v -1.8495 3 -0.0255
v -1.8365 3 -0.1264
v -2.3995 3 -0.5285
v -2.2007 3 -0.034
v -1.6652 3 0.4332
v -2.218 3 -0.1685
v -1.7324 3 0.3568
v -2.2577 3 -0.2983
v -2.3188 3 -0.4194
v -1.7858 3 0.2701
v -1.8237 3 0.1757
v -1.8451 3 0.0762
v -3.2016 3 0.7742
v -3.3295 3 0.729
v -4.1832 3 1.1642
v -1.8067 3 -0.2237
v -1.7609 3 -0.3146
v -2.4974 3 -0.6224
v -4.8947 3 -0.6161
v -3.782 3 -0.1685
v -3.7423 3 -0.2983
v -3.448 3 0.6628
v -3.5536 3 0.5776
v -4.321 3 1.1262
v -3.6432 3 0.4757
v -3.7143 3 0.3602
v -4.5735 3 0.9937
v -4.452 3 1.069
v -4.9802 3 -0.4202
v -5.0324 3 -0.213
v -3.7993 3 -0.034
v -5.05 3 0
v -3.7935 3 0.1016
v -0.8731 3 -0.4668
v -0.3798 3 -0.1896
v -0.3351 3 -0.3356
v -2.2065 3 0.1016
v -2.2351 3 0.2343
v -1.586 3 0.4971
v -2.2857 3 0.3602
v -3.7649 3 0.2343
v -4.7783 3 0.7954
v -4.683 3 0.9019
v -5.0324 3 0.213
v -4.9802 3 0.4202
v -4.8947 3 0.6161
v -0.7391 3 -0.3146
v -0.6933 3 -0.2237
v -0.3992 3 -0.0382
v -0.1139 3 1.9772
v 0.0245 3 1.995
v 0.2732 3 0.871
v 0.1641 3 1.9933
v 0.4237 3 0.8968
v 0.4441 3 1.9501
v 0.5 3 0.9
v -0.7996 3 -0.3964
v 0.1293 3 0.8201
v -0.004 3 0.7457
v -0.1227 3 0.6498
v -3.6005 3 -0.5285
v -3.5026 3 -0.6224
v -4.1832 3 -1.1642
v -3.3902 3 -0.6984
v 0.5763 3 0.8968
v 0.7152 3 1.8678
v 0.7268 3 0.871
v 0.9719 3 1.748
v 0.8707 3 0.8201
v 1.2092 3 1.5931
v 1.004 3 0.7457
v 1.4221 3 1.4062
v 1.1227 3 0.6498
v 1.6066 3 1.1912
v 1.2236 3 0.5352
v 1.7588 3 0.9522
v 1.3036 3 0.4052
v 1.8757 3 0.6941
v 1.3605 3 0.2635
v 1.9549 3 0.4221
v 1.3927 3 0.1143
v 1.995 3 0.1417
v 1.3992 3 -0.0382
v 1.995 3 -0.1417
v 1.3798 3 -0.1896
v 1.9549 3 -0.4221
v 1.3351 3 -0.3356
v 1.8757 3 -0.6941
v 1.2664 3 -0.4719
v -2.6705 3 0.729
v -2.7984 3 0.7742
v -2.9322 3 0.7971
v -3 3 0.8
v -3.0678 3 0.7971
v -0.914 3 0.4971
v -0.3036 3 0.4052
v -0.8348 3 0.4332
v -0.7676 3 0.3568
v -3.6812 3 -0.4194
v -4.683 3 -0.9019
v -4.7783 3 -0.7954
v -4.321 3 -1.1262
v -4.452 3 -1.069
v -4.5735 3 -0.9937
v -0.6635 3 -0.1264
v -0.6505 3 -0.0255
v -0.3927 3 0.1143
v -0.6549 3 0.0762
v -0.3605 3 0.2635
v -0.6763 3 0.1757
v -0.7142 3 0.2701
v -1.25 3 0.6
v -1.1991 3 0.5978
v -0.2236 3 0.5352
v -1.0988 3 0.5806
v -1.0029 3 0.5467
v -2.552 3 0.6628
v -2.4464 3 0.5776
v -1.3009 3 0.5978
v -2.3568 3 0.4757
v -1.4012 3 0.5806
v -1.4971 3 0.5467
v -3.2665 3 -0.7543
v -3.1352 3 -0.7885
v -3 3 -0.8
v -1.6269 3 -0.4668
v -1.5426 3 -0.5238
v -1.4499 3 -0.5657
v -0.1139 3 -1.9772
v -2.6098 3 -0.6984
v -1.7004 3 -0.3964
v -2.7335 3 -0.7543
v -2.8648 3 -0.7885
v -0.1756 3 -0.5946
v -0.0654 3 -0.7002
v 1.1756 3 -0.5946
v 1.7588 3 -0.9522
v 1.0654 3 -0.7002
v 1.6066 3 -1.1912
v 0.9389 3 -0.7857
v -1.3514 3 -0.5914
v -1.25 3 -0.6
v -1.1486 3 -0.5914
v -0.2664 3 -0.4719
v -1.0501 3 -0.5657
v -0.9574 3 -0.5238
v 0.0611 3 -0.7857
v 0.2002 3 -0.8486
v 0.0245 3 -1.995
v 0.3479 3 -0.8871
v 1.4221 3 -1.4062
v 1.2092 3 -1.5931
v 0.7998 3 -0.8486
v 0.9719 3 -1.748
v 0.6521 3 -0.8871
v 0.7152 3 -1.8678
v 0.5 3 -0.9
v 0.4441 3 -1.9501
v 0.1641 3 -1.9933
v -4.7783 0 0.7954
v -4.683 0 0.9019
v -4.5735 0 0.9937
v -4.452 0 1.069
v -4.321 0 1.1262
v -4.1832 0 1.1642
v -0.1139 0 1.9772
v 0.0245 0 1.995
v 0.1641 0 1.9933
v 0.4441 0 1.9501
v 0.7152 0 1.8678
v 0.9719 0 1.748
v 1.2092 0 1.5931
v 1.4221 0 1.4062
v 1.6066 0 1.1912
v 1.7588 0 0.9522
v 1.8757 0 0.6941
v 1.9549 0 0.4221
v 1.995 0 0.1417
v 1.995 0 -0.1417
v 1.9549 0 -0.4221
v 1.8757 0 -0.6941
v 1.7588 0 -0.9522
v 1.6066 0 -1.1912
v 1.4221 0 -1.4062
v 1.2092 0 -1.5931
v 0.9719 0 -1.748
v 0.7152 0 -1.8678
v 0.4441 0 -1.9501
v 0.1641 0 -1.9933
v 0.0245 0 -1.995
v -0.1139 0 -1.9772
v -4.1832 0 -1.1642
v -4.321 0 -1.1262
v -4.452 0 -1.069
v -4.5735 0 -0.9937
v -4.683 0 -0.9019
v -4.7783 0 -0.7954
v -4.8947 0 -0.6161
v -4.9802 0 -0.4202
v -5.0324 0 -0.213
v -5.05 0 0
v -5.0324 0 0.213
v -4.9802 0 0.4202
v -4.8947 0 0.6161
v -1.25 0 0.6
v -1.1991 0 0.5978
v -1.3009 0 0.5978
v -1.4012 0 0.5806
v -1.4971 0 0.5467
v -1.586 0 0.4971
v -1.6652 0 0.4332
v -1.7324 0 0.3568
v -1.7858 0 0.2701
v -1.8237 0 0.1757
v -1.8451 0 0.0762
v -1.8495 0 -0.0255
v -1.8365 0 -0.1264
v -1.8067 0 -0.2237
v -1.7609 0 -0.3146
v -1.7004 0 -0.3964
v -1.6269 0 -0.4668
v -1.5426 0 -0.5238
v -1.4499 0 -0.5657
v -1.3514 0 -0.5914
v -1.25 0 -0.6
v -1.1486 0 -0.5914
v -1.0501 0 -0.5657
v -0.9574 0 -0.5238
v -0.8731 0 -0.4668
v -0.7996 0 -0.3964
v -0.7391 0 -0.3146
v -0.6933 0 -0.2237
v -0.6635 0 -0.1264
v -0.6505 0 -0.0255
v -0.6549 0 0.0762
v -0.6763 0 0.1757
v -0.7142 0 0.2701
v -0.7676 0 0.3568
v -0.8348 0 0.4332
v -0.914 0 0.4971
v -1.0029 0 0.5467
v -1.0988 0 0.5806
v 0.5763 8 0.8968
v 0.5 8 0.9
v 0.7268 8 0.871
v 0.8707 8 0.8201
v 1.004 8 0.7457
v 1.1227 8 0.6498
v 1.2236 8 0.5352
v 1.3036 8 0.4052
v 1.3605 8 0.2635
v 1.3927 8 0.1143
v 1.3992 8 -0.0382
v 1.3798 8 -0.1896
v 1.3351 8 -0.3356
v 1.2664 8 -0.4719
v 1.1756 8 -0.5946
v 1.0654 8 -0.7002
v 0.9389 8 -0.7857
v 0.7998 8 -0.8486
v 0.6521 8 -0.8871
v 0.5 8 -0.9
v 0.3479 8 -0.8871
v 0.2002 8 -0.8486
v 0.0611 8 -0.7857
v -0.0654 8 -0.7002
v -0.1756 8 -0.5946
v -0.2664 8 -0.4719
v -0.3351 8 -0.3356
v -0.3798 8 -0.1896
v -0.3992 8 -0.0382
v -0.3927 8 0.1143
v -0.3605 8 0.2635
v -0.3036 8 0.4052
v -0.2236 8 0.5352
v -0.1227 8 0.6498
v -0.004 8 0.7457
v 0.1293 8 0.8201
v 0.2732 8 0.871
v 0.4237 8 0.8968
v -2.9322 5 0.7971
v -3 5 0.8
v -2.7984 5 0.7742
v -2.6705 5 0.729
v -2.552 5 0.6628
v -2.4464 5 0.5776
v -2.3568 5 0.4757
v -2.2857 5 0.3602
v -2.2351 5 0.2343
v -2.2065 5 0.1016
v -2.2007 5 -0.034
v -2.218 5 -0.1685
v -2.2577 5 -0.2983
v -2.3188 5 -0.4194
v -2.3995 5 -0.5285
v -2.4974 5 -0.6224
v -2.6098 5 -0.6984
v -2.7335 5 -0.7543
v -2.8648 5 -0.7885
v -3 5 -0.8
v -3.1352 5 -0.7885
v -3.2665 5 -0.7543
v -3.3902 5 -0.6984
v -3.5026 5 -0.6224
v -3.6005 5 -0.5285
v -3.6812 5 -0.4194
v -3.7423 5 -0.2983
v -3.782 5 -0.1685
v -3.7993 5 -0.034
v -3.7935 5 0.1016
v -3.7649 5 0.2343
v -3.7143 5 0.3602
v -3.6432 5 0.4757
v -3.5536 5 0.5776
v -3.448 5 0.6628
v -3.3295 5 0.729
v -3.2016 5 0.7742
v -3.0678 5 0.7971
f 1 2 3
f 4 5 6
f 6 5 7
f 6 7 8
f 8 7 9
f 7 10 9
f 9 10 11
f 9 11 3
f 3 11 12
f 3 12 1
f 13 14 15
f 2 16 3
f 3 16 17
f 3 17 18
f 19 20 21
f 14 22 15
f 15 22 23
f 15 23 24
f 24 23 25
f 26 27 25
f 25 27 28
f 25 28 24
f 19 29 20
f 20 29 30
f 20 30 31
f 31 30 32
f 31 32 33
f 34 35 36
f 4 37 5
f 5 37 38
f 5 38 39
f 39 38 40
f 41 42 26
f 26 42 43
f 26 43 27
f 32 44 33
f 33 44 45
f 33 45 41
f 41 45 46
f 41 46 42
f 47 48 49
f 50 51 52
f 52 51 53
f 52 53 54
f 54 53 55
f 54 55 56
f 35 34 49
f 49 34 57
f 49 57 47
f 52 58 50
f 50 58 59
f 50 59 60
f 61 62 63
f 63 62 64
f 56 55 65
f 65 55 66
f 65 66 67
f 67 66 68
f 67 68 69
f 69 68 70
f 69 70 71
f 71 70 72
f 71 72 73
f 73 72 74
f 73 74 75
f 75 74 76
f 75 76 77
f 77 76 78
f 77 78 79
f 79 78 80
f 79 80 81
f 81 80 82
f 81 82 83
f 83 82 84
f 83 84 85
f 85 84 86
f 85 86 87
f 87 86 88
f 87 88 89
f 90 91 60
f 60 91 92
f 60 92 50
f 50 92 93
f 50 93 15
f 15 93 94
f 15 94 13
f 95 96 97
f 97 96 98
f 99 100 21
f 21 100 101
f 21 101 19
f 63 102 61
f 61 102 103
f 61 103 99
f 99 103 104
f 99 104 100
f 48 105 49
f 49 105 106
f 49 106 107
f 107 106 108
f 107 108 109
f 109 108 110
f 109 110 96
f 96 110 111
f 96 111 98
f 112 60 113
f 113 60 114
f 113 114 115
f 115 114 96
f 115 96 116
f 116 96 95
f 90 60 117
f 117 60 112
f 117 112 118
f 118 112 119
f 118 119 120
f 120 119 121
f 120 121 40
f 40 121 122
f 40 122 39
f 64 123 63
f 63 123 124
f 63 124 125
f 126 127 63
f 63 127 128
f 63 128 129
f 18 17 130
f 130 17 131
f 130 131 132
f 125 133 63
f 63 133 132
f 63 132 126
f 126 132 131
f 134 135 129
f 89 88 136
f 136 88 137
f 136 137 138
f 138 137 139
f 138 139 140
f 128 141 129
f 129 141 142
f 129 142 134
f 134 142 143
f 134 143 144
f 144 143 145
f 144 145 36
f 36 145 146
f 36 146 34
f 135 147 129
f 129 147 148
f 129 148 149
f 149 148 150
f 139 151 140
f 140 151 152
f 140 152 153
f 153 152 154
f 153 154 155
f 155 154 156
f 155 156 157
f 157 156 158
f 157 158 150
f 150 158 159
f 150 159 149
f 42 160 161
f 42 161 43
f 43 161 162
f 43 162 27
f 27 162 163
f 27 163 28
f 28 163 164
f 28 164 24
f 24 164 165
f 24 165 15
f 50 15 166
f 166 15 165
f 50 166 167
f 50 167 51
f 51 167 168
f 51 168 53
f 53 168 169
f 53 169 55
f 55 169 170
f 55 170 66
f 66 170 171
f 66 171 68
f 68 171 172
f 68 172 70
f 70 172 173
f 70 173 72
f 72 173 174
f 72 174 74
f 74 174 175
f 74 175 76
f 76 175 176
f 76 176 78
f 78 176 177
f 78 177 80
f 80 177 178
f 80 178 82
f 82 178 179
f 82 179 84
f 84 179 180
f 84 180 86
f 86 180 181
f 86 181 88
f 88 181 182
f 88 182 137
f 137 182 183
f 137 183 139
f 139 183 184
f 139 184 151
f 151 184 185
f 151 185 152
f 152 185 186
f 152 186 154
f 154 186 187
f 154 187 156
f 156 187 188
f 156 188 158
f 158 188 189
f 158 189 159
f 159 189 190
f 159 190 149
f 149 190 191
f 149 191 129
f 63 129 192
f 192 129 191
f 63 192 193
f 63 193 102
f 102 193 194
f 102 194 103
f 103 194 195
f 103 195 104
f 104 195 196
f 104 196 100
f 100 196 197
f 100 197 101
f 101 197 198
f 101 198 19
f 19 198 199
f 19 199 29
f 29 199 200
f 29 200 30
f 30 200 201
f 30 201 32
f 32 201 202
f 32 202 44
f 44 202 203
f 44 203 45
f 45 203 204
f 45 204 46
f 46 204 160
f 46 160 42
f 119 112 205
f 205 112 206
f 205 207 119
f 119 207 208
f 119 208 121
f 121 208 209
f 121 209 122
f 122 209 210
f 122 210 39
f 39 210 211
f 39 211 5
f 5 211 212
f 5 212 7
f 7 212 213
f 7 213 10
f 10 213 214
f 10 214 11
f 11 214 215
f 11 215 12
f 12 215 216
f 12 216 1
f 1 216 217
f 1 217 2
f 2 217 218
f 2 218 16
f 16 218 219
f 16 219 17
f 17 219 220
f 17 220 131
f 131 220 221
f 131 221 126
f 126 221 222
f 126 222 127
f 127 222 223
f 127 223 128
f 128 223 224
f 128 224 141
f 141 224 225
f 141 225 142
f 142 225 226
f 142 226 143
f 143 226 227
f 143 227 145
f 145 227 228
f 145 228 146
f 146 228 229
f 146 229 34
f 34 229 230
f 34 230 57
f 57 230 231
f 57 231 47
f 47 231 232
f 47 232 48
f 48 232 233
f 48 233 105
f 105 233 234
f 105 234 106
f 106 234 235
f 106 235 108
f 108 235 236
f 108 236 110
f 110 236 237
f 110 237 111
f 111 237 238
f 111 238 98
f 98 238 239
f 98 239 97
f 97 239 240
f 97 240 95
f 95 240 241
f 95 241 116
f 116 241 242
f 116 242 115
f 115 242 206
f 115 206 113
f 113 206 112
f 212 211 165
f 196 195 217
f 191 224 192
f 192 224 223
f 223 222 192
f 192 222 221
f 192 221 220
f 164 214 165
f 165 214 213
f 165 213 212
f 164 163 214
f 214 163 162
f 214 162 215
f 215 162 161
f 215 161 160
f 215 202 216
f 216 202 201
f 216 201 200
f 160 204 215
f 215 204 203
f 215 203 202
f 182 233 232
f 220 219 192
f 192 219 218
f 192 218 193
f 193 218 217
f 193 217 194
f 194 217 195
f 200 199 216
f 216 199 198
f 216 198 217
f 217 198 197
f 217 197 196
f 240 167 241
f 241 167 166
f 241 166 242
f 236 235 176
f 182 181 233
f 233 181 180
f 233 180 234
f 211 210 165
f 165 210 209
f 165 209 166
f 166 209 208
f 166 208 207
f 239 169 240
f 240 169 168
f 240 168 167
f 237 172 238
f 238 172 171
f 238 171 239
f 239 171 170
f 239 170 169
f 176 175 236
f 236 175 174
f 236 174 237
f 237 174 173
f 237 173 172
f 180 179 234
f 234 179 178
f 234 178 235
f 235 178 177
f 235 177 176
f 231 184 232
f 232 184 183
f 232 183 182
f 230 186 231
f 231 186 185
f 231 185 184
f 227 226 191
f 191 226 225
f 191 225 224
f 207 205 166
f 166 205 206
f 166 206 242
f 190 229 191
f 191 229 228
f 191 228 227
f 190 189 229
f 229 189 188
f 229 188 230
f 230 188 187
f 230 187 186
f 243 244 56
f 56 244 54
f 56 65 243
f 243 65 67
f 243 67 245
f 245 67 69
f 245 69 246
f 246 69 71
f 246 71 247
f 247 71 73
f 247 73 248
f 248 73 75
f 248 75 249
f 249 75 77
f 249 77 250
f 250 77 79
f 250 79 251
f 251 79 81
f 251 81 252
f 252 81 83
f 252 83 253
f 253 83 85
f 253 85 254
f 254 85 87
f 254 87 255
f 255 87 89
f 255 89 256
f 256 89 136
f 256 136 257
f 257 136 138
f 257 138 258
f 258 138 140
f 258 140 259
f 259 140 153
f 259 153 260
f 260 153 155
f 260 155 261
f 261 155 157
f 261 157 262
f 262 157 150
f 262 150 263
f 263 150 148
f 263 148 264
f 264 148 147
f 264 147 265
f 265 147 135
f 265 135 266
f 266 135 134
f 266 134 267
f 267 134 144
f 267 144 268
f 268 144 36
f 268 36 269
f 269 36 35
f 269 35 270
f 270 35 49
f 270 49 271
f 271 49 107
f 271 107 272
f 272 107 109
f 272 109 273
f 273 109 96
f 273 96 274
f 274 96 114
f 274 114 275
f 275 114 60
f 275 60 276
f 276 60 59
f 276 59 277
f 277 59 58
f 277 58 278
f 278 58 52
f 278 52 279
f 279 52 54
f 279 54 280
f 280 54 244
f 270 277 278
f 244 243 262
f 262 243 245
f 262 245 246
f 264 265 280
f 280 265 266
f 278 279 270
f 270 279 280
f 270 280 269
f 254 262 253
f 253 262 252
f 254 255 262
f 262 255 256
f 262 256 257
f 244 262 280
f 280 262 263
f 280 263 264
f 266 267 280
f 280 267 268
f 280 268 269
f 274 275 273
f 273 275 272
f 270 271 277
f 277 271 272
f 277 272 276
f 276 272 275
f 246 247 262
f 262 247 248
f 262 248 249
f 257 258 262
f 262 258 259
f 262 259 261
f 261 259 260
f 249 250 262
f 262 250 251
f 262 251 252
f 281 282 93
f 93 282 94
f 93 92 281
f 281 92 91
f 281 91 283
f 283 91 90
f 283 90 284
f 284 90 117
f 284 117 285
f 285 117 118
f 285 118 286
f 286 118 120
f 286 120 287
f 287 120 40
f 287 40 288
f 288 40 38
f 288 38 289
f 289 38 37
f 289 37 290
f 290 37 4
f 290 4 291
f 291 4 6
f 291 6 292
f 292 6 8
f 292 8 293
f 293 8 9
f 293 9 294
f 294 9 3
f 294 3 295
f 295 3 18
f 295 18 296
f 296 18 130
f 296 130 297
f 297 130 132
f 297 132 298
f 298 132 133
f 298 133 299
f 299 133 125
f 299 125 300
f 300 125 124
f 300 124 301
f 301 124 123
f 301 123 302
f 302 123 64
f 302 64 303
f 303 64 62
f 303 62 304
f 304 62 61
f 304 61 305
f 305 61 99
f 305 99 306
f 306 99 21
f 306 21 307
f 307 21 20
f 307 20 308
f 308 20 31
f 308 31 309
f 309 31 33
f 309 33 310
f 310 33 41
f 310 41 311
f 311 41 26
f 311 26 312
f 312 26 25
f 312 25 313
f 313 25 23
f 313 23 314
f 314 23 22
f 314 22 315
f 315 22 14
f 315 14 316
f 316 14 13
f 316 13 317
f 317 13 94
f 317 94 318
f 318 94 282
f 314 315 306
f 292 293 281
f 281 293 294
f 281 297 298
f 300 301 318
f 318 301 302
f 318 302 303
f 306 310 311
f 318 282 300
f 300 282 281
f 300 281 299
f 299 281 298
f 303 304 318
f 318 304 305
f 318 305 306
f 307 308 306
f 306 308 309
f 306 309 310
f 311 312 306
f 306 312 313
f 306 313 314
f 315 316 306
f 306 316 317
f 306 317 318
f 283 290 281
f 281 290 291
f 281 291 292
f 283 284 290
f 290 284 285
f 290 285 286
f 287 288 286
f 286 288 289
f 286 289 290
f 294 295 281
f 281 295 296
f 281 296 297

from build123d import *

# Parameters (mm, degrees)
SKETCH1_R           = 0.6
BOSS_EXTRUDE1_DEPTH = 3
SKETCH1_22_R        = 0.9
BOSS_EXTRUDE2_DEPTH = 8
SKETCH1_23_R        = 0.8
BOSS_EXTRUDE3_DEPTH = 5


with BuildPart() as part:
    # Sketch1 → Boss-Extrude1 (new body)
    with BuildSketch(Plane(origin=(0, 0, 0), x_dir=(1, 0, 0), z_dir=(0, 1, 0))):
        with BuildLine():
            ThreePointArc((0.1641009, 1.993256355), (0.024548565, 1.994973575), (-0.113883759, 1.977245221))
            Line((-0.113883759, 1.977245221), (-4.183235691, 1.164159973))
            ThreePointArc((-4.183235691, 1.164159973), (-4.514100231, 1.033532975), (-4.77830642, 0.795352694))
            ThreePointArc((-4.77830642, 0.795352694), (-5.05, 0), (-4.77830642, -0.795352694))
            ThreePointArc((-4.77830642, -0.795352694), (-4.514100231, -1.033532975), (-4.183235691, -1.164159973))
            Line((-4.183235691, -1.164159973), (-0.11388376, -1.977245221))
            ThreePointArc((-0.11388376, -1.977245221), (0.024548564, -1.994973575), (0.164100898, -1.993256355))
            ThreePointArc((0.164100898, -1.993256355), (2, -1e-09), (0.1641009, 1.993256355))
        make_face()
        with Locations((-1.25, 0)):
            Circle(SKETCH1_R, mode=Mode.SUBTRACT)
    extrude(amount=BOSS_EXTRUDE1_DEPTH)

    # Sketch1<22> → Boss-Extrude2 (add)
    with BuildSketch(Plane(origin=(0, 0, 0), x_dir=(1, 0, 0), z_dir=(0, 1, 0))):
        with Locations((0.5, 0)):
            Circle(SKETCH1_22_R)
    extrude(amount=BOSS_EXTRUDE2_DEPTH)

    # Sketch1<23> → Boss-Extrude3 (add)
    with BuildSketch(Plane(origin=(0, 0, 0), x_dir=(1, 0, 0), z_dir=(0, 1, 0))):
        with Locations((-3, 0)):
            Circle(SKETCH1_23_R)
    extrude(amount=BOSS_EXTRUDE3_DEPTH)


solid = part.part
